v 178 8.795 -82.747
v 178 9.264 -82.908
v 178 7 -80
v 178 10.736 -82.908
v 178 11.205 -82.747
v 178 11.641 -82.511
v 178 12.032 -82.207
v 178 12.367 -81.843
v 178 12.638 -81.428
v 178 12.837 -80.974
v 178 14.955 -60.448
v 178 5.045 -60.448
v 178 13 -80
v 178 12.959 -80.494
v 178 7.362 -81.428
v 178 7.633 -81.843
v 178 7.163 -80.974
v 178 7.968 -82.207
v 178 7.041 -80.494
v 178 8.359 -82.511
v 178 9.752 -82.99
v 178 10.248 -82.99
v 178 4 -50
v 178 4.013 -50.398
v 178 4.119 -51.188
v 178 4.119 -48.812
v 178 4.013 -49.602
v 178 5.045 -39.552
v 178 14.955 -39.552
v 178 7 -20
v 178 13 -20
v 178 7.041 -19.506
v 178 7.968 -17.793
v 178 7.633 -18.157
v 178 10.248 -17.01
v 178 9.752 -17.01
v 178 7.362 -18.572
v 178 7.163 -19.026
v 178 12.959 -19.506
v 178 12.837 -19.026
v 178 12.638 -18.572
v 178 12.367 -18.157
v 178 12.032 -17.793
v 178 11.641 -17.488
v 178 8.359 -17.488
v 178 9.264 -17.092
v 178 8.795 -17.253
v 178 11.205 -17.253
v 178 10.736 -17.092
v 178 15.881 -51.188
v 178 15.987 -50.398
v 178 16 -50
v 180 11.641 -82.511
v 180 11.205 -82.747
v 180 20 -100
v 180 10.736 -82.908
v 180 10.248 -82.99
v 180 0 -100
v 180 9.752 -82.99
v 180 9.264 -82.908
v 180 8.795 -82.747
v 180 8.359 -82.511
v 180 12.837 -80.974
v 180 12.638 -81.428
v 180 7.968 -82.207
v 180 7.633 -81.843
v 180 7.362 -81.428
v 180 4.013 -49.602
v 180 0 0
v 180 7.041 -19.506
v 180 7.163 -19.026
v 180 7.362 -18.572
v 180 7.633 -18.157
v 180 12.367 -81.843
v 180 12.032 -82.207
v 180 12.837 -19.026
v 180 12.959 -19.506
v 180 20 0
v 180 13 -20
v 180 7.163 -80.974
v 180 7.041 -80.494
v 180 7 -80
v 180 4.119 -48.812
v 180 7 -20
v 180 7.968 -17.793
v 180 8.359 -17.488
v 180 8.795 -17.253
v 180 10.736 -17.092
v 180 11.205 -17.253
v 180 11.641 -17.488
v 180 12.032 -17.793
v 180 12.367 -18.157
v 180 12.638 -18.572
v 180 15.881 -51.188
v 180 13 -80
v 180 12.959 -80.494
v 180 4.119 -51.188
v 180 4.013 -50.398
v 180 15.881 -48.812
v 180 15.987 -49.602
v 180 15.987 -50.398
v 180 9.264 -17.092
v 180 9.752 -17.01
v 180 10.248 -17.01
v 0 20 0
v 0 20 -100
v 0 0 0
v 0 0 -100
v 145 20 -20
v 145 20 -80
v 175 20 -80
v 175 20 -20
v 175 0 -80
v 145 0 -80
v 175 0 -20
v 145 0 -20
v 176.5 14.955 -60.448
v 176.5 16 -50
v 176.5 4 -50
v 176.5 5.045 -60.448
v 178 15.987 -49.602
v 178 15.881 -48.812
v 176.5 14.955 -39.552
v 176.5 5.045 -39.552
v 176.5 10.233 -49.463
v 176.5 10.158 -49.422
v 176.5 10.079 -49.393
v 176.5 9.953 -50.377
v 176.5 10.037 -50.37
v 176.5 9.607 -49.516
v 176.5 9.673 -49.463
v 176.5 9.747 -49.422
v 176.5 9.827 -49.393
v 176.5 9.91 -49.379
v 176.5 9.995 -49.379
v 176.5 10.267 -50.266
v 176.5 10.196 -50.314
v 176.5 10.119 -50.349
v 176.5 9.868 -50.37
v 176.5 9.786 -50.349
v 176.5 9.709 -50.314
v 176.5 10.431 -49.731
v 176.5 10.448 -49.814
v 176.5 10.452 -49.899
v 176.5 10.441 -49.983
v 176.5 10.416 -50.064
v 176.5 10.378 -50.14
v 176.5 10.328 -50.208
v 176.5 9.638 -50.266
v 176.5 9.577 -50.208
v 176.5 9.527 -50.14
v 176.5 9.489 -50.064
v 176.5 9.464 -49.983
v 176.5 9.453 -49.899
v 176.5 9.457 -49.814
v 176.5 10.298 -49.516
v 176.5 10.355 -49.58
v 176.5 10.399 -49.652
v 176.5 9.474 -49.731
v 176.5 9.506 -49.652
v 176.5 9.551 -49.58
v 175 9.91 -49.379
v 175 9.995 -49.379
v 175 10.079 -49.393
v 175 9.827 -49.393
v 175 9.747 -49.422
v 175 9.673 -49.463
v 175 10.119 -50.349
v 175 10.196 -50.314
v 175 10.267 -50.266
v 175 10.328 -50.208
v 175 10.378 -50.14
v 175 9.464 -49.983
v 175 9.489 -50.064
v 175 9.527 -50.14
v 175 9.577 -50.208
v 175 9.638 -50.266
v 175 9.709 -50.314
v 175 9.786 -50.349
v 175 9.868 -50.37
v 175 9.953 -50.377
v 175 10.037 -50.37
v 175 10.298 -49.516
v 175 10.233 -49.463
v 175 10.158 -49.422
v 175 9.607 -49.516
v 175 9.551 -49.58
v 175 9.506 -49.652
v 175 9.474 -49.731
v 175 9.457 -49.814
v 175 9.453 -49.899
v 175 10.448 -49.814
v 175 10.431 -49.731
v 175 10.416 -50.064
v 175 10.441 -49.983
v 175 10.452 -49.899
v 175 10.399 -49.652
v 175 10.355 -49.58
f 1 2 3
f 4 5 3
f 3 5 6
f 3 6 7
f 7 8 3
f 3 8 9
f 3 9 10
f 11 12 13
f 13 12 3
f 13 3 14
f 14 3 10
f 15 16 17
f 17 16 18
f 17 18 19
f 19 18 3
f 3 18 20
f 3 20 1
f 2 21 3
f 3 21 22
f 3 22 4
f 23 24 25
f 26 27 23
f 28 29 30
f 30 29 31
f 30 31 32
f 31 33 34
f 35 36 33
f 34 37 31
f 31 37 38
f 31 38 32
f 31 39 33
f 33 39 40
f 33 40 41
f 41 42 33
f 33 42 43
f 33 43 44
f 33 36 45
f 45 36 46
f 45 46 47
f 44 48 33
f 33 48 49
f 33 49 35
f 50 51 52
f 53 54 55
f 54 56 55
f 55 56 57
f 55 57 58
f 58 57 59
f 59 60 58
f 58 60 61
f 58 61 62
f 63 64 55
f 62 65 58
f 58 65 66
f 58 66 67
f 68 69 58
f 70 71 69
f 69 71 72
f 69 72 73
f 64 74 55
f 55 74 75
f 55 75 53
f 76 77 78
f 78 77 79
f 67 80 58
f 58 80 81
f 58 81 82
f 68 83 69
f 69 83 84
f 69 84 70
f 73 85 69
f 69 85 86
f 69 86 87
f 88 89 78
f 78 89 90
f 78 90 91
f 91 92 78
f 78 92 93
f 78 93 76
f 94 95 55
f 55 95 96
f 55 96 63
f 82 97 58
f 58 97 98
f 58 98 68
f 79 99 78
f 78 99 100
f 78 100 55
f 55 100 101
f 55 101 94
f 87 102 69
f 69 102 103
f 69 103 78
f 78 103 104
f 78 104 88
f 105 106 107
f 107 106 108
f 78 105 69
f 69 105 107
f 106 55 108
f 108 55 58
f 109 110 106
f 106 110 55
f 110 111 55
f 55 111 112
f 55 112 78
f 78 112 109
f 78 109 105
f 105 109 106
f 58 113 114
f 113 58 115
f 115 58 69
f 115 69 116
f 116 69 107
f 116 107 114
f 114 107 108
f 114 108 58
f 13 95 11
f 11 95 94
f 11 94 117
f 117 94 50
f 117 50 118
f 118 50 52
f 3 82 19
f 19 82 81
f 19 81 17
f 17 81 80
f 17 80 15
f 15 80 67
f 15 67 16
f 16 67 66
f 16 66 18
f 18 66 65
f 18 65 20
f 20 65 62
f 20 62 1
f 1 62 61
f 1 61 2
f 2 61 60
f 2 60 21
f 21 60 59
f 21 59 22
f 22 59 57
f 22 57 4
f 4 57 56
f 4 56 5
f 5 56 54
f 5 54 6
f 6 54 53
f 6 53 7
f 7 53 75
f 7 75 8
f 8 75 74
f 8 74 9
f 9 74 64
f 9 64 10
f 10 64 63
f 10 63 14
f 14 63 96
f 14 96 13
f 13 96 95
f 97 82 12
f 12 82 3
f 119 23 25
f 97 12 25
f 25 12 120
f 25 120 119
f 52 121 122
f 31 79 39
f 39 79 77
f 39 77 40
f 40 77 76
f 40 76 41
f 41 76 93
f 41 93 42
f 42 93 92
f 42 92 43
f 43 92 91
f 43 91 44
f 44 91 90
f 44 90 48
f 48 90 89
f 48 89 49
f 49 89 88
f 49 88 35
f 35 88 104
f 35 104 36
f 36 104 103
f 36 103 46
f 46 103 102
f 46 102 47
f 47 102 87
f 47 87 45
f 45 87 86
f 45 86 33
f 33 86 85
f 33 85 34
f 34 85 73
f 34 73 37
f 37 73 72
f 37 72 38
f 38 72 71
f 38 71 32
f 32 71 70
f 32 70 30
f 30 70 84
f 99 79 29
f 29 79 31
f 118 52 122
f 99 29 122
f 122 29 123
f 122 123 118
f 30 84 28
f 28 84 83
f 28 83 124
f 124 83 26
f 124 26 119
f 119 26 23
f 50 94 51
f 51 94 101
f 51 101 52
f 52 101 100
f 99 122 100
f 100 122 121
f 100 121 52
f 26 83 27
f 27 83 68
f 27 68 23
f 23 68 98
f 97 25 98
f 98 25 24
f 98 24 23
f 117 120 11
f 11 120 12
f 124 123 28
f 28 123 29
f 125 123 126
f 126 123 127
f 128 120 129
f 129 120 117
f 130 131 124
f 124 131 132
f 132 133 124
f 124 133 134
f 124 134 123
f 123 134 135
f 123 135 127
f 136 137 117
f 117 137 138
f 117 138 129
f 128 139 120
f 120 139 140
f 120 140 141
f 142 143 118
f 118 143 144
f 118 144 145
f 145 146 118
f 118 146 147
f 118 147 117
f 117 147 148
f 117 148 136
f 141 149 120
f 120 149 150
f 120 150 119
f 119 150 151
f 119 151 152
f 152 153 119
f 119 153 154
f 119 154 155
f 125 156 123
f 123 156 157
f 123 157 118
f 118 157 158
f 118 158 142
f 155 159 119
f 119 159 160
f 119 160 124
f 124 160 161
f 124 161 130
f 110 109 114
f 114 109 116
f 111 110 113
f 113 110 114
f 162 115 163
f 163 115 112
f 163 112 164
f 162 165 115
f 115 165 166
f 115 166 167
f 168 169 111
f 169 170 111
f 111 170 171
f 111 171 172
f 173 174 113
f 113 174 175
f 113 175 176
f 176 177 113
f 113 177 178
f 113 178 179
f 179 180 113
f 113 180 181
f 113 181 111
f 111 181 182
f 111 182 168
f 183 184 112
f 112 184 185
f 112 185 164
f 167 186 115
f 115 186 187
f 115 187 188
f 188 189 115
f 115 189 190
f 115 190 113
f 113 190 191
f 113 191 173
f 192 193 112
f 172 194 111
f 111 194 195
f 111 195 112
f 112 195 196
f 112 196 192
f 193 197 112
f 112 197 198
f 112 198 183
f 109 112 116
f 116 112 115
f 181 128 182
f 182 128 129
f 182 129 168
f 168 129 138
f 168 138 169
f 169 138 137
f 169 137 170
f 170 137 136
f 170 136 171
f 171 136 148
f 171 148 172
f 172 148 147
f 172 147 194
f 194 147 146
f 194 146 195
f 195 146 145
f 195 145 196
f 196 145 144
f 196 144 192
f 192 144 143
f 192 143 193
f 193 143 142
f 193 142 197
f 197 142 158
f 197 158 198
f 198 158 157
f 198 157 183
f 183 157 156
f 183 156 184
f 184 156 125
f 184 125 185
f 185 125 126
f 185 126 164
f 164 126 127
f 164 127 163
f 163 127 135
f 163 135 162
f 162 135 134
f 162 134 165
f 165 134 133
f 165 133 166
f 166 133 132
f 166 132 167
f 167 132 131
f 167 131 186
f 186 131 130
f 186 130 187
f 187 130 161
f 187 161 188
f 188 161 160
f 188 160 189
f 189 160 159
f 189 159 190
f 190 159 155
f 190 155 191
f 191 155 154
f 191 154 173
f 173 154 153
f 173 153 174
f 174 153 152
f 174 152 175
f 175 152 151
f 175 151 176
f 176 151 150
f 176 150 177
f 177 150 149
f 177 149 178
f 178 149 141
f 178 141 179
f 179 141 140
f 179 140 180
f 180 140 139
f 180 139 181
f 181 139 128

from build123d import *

# Parameters (mm, degrees)
SKETCH_1_W          = 180
SKETCH_1_H          = 100
EXTRUDE_2_DEPTH     = 20
CUT_EXTRUDE_3_DEPTH = 2
CUT_EXTRUDE_4_DEPTH = 3.5
SKETCH_6_W          = 30
SKETCH_6_H          = 60
CUT_EXTRUDE_5_DEPTH = 50
MM_1_D              = 1
MM_1_DEPTH          = 4
MM_1_TIP            = 0.30043031


with BuildPart() as part:
    # 草图1 → 凸台-拉伸2 (new body)
    with BuildSketch(Plane(origin=(0, 0, 0), x_dir=(1, 0, 0), z_dir=(0, 1, 0))):
        with Locations((90, 50)):
            Rectangle(SKETCH_1_W, SKETCH_1_H)
    extrude(amount=EXTRUDE_2_DEPTH)

    # 草图4 → 切除-拉伸3 (cut)
    with BuildSketch(Plane(origin=(180, 0, 0), x_dir=(0, 0, -1), z_dir=(1, 0, 0))):
        with BuildLine():
            Line((48.811881188, 15.881188119), (20, 13))
            ThreePointArc((20, 13), (17, 10), (20, 7))
            Line((20, 7), (48.811881188, 4.118811881))
            ThreePointArc((48.811881188, 4.118811881), (50, 4), (51.188118812, 4.118811881))
            Line((51.188118812, 4.118811881), (80, 7))
            ThreePointArc((80, 7), (83, 10), (80, 13))
            Line((80, 13), (51.188118812, 15.881188119))
            ThreePointArc((51.188118812, 15.881188119), (50, 16), (48.811881188, 15.881188119))
        make_face()
    extrude(amount=-CUT_EXTRUDE_3_DEPTH, mode=Mode.SUBTRACT)

    # 草图5 → 切除-拉伸4 (cut)
    with BuildSketch(Plane(origin=(180, 0, 0), x_dir=(0, 0, -1), z_dir=(1, 0, 0))):
        Polygon((50, 16), (39.552109503, 14.95521095), (39.552109503, 5.04478905), (50, 4), (60.447890497, 5.04478905), (60.447890497, 14.95521095), align=None)
    extrude(amount=-CUT_EXTRUDE_4_DEPTH, mode=Mode.SUBTRACT)

    # 草图6 → 切除-拉伸5 (cut)
    with BuildSketch(Plane(origin=(0, 20, 0), x_dir=(1, 0, 0), z_dir=(0, 1, 0))):
        with Locations((160, 50)):
            Rectangle(SKETCH_6_W, SKETCH_6_H)
    extrude(amount=-CUT_EXTRUDE_5_DEPTH, mode=Mode.SUBTRACT)

    # 大小mm 暗销孔1
    with Locations(Plane(origin=(176.5, 9.952512246, -49.877349569), x_dir=(0, 0, 1), z_dir=(1, 0, 0))):
        with Locations((0, 0)):
            Hole(MM_1_D / 2, depth=MM_1_DEPTH)
            with Locations((0, 0, -(MM_1_DEPTH + MM_1_TIP / 2))):  # 118° drill point
                Cone(0, MM_1_D / 2, MM_1_TIP, mode=Mode.SUBTRACT)


solid = part.part
